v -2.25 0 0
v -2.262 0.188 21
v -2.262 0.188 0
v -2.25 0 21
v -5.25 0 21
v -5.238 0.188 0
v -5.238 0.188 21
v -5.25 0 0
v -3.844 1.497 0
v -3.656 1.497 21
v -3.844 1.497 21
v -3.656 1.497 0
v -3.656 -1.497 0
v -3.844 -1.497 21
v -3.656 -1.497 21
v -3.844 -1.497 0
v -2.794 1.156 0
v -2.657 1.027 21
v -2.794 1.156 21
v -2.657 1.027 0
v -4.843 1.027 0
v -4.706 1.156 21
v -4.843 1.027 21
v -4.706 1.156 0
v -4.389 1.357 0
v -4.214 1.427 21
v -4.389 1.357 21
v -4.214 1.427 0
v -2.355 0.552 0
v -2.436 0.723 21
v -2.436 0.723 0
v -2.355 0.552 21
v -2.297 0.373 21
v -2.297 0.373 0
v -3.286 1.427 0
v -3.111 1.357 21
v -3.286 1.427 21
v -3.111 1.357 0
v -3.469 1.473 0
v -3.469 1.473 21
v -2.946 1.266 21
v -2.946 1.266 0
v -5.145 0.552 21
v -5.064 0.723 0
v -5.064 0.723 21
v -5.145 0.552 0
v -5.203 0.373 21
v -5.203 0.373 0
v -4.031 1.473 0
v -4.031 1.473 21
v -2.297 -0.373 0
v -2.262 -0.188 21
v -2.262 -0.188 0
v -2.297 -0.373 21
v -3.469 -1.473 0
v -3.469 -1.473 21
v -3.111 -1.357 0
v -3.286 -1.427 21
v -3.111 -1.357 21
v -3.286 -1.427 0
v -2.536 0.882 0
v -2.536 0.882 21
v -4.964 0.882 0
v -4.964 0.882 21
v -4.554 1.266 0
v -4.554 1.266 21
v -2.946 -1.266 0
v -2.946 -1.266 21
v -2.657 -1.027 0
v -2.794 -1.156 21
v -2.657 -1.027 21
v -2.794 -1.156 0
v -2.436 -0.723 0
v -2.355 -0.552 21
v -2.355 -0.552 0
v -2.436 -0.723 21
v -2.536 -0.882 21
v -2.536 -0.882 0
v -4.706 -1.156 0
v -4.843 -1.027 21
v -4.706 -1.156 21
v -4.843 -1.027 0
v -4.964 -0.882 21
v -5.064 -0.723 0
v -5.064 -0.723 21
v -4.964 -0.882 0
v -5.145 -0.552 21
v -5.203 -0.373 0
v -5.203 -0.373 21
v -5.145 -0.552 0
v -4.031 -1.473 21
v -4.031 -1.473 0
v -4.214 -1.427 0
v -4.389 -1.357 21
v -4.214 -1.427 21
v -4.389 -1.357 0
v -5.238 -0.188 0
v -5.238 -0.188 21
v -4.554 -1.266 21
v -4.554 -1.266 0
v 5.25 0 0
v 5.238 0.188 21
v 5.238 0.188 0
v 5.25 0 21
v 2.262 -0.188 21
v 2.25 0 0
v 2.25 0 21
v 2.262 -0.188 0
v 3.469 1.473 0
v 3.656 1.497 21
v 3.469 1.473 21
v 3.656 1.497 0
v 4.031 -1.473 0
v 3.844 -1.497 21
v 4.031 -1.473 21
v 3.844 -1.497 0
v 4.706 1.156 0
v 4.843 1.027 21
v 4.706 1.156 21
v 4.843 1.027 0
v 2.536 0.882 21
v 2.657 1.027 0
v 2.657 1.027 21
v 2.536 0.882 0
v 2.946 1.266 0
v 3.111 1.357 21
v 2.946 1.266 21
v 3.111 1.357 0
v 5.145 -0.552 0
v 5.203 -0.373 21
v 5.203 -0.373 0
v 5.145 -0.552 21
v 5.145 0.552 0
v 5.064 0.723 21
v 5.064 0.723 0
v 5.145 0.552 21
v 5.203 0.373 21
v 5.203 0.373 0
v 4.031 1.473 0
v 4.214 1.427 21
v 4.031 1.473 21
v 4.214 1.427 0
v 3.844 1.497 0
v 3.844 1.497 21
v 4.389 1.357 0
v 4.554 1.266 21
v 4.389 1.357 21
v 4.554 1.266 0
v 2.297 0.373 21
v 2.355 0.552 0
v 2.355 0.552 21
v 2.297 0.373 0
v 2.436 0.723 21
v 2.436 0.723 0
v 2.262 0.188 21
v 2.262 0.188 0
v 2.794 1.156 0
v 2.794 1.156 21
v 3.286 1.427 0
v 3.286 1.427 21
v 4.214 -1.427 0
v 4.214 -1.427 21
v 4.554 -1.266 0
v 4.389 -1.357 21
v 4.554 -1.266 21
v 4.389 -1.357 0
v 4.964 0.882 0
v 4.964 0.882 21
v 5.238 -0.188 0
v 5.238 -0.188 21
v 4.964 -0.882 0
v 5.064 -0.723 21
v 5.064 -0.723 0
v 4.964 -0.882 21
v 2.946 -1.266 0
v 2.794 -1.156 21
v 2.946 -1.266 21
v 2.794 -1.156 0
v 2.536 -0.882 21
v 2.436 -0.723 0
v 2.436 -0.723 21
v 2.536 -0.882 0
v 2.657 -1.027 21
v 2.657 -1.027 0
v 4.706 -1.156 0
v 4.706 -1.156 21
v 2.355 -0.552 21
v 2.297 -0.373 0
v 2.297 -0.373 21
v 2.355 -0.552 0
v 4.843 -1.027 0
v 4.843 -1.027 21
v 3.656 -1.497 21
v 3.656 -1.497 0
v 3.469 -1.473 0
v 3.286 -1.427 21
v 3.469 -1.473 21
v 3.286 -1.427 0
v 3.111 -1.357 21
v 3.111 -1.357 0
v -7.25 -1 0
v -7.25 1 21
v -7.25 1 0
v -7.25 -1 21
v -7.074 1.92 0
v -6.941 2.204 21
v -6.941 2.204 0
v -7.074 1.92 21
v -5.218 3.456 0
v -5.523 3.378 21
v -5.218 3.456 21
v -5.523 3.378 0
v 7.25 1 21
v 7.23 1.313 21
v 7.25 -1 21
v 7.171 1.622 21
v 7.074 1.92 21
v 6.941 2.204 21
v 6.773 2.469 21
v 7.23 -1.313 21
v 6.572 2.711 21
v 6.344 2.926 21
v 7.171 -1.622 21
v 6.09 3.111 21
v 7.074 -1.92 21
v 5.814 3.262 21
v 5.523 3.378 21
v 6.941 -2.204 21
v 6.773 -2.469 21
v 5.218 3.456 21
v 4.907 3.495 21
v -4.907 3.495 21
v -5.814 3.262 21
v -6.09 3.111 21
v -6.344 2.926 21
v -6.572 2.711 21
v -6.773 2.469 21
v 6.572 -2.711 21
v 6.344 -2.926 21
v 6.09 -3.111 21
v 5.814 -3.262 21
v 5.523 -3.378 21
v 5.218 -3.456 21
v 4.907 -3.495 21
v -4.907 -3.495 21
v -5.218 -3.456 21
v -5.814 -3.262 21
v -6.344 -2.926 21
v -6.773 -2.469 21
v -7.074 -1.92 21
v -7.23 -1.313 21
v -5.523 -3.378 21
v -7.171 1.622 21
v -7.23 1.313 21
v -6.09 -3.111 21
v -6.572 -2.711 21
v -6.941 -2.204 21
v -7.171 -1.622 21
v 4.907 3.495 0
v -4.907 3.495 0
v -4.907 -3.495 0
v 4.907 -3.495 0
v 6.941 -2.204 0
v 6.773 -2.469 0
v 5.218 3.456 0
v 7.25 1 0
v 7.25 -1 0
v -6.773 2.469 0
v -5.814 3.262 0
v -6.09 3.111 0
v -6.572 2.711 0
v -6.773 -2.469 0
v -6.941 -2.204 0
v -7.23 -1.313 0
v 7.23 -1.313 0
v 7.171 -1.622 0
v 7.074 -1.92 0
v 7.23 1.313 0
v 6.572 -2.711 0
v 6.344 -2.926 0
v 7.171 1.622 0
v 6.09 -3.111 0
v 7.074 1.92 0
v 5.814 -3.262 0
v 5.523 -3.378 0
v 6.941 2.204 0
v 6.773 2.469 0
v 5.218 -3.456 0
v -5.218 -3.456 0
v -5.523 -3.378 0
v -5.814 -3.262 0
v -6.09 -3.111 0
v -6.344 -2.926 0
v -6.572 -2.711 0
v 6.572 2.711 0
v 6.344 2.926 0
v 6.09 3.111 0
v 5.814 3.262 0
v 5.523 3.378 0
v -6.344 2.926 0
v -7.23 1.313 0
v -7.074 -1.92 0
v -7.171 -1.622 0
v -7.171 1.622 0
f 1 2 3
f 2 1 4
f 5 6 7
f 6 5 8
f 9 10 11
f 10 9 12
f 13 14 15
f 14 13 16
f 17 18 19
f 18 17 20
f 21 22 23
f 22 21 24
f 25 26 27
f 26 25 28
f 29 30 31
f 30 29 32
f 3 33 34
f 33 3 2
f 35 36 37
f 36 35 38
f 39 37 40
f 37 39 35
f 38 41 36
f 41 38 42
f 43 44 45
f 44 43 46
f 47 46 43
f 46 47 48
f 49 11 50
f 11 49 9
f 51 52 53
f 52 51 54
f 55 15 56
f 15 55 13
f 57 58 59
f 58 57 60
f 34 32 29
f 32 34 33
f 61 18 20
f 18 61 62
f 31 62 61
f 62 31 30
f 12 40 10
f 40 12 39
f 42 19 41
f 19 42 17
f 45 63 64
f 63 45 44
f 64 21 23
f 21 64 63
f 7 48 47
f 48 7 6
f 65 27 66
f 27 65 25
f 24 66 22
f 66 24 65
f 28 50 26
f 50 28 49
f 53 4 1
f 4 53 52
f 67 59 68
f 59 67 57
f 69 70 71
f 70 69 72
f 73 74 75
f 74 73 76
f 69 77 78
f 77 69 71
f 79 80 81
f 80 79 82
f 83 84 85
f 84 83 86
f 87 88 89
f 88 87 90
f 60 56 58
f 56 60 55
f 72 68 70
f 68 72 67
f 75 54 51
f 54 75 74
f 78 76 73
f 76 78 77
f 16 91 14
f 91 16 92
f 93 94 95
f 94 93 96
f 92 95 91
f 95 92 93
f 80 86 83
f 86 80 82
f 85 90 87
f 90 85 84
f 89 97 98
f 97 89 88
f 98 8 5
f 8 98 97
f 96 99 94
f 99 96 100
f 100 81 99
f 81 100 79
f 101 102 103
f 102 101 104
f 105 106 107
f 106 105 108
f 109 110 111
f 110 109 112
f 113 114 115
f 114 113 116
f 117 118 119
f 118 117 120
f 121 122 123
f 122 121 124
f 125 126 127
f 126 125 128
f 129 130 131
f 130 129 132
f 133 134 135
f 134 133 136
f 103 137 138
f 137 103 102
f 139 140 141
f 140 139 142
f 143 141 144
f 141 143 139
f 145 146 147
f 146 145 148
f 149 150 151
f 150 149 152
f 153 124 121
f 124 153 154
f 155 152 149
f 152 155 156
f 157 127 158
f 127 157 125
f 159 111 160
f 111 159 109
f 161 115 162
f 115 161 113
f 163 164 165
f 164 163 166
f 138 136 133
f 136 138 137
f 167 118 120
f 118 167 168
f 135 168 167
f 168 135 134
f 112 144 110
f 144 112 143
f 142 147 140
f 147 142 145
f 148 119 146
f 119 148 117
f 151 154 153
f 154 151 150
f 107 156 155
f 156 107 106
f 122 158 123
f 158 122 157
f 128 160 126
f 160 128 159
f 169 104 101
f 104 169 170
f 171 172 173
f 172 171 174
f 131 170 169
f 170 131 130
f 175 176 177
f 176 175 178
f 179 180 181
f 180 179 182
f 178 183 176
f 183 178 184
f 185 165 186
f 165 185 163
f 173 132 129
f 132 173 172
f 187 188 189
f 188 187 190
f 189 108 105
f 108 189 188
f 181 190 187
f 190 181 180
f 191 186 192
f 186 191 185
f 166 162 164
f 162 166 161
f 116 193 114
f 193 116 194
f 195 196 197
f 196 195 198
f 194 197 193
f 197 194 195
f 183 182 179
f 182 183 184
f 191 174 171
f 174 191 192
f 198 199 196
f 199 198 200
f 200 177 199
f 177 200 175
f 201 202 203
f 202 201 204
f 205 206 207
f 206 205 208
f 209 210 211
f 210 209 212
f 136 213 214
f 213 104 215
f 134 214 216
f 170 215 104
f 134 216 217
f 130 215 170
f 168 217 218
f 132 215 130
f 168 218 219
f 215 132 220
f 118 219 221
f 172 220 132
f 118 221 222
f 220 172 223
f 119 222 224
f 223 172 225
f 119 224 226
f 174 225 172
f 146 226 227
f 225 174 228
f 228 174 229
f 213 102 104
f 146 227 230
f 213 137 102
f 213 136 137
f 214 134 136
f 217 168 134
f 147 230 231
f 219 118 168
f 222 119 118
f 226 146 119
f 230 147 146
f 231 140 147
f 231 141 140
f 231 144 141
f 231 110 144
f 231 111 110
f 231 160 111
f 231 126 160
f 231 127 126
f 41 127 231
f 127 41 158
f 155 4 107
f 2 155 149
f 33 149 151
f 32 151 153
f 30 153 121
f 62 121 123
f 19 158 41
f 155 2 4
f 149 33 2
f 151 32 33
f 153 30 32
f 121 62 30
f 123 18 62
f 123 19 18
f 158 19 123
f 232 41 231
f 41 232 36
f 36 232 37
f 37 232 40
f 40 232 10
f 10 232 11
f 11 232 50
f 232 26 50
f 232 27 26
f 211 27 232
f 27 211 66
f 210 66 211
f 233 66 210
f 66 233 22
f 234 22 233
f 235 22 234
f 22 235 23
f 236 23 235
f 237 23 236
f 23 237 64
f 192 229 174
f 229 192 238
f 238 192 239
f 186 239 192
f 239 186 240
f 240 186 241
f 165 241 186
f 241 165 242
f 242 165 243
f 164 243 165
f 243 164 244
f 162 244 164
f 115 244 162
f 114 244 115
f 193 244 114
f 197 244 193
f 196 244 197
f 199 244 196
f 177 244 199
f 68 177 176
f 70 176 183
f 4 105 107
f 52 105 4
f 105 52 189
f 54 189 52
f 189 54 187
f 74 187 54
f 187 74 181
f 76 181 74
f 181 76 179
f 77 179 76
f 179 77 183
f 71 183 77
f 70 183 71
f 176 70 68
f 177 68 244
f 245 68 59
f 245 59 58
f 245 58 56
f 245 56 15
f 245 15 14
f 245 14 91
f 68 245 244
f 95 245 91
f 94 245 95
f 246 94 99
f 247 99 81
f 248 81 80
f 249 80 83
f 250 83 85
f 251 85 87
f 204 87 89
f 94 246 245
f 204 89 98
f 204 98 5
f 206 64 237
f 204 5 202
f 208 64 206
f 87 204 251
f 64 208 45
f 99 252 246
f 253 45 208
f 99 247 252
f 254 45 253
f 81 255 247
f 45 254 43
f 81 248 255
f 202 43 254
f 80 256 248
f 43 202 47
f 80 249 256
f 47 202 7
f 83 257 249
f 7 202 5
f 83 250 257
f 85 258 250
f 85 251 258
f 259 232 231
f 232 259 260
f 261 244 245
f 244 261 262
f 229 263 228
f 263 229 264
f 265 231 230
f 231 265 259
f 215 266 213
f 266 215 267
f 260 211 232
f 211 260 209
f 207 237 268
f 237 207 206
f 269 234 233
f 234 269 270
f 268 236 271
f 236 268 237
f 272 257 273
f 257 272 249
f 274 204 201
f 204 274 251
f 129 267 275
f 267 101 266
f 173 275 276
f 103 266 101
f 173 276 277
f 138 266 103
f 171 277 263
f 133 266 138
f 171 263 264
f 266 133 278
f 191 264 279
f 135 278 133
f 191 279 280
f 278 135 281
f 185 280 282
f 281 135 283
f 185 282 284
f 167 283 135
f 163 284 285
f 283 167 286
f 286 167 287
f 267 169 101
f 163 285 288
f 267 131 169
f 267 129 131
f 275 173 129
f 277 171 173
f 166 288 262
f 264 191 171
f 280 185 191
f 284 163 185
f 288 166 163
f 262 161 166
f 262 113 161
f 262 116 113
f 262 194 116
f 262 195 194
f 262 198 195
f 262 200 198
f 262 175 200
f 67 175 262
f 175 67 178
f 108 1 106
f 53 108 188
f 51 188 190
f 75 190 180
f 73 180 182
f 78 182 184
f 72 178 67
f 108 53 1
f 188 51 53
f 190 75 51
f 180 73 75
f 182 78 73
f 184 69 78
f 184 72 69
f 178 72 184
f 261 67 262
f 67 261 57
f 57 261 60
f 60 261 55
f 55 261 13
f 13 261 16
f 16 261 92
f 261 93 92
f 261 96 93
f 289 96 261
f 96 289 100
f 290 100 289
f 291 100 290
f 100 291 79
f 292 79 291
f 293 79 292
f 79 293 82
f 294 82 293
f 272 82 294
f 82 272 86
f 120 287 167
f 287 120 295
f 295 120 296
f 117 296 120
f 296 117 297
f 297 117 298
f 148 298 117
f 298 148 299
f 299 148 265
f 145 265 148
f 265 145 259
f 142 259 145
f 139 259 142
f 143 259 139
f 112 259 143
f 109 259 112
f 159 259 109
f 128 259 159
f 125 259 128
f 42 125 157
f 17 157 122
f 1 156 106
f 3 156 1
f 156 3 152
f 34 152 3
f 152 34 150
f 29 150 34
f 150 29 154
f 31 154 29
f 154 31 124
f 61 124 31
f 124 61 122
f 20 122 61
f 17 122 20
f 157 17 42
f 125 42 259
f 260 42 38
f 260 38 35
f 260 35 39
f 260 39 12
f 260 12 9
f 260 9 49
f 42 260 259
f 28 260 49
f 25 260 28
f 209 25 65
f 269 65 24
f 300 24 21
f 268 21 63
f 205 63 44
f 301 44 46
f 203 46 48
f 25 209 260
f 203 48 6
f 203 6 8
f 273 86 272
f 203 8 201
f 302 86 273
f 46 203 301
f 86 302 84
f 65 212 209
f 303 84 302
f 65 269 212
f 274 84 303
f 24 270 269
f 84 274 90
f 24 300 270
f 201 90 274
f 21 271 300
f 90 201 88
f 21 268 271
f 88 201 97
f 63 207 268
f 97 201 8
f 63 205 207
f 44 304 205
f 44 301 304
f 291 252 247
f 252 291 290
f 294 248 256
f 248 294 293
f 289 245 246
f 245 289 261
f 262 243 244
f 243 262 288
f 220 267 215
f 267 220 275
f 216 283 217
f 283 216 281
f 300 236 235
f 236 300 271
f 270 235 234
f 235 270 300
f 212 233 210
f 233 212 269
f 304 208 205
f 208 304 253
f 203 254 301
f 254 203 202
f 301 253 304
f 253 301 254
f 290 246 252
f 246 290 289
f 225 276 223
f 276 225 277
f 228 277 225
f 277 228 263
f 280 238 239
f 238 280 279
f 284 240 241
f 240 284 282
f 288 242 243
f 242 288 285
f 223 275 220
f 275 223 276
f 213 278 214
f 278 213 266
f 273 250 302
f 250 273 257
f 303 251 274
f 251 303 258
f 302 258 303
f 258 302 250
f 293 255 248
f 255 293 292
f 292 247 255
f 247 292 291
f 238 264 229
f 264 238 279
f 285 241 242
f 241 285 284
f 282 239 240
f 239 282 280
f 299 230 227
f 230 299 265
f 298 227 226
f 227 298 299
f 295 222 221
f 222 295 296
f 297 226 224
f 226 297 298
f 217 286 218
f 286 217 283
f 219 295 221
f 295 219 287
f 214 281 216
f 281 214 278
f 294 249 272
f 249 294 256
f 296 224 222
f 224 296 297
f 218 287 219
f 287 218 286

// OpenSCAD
$fn = 50;


difference() {
	union() {
		translate(v = [0, 0, 0]) {
			rotate(a = [0, 0, 0]) {
				hull() {
					translate(v = [-4.7500000000, 1.0000000000, 0]) {
						rotate(a = [0, 0, 0]) {
							translate(v = [0, 0, 0]) {
								rotate(a = [0, 0, 0]) {
									cylinder(h = 21, r = 2.5000000000);
								}
							}
						}
					}
					translate(v = [4.7500000000, 1.0000000000, 0]) {
						rotate(a = [0, 0, 0]) {
							translate(v = [0, 0, 0]) {
								rotate(a = [0, 0, 0]) {
									cylinder(h = 21, r = 2.5000000000);
								}
							}
						}
					}
					translate(v = [-4.7500000000, -1.0000000000, 0]) {
						rotate(a = [0, 0, 0]) {
							translate(v = [0, 0, 0]) {
								rotate(a = [0, 0, 0]) {
									cylinder(h = 21, r = 2.5000000000);
								}
							}
						}
					}
					translate(v = [4.7500000000, -1.0000000000, 0]) {
						rotate(a = [0, 0, 0]) {
							translate(v = [0, 0, 0]) {
								rotate(a = [0, 0, 0]) {
									cylinder(h = 21, r = 2.5000000000);
								}
							}
						}
					}
				}
			}
		}
	}
	union() {
		translate(v = [-3.7500000000, 0.0000000000, 0]) {
			rotate(a = [0, 0, 0]) {
				translate(v = [0, 0, -50]) {
					rotate(a = [0, 0, 0]) {
						cylinder(h = 100, r = 1.5000000000);
					}
				}
			}
		}
		translate(v = [3.7500000000, 0.0000000000, 0]) {
			rotate(a = [0, 0, 0]) {
				translate(v = [0, 0, -50]) {
					rotate(a = [0, 0, 0]) {
						cylinder(h = 100, r = 1.5000000000);
					}
				}
			}
		}
	}
}
